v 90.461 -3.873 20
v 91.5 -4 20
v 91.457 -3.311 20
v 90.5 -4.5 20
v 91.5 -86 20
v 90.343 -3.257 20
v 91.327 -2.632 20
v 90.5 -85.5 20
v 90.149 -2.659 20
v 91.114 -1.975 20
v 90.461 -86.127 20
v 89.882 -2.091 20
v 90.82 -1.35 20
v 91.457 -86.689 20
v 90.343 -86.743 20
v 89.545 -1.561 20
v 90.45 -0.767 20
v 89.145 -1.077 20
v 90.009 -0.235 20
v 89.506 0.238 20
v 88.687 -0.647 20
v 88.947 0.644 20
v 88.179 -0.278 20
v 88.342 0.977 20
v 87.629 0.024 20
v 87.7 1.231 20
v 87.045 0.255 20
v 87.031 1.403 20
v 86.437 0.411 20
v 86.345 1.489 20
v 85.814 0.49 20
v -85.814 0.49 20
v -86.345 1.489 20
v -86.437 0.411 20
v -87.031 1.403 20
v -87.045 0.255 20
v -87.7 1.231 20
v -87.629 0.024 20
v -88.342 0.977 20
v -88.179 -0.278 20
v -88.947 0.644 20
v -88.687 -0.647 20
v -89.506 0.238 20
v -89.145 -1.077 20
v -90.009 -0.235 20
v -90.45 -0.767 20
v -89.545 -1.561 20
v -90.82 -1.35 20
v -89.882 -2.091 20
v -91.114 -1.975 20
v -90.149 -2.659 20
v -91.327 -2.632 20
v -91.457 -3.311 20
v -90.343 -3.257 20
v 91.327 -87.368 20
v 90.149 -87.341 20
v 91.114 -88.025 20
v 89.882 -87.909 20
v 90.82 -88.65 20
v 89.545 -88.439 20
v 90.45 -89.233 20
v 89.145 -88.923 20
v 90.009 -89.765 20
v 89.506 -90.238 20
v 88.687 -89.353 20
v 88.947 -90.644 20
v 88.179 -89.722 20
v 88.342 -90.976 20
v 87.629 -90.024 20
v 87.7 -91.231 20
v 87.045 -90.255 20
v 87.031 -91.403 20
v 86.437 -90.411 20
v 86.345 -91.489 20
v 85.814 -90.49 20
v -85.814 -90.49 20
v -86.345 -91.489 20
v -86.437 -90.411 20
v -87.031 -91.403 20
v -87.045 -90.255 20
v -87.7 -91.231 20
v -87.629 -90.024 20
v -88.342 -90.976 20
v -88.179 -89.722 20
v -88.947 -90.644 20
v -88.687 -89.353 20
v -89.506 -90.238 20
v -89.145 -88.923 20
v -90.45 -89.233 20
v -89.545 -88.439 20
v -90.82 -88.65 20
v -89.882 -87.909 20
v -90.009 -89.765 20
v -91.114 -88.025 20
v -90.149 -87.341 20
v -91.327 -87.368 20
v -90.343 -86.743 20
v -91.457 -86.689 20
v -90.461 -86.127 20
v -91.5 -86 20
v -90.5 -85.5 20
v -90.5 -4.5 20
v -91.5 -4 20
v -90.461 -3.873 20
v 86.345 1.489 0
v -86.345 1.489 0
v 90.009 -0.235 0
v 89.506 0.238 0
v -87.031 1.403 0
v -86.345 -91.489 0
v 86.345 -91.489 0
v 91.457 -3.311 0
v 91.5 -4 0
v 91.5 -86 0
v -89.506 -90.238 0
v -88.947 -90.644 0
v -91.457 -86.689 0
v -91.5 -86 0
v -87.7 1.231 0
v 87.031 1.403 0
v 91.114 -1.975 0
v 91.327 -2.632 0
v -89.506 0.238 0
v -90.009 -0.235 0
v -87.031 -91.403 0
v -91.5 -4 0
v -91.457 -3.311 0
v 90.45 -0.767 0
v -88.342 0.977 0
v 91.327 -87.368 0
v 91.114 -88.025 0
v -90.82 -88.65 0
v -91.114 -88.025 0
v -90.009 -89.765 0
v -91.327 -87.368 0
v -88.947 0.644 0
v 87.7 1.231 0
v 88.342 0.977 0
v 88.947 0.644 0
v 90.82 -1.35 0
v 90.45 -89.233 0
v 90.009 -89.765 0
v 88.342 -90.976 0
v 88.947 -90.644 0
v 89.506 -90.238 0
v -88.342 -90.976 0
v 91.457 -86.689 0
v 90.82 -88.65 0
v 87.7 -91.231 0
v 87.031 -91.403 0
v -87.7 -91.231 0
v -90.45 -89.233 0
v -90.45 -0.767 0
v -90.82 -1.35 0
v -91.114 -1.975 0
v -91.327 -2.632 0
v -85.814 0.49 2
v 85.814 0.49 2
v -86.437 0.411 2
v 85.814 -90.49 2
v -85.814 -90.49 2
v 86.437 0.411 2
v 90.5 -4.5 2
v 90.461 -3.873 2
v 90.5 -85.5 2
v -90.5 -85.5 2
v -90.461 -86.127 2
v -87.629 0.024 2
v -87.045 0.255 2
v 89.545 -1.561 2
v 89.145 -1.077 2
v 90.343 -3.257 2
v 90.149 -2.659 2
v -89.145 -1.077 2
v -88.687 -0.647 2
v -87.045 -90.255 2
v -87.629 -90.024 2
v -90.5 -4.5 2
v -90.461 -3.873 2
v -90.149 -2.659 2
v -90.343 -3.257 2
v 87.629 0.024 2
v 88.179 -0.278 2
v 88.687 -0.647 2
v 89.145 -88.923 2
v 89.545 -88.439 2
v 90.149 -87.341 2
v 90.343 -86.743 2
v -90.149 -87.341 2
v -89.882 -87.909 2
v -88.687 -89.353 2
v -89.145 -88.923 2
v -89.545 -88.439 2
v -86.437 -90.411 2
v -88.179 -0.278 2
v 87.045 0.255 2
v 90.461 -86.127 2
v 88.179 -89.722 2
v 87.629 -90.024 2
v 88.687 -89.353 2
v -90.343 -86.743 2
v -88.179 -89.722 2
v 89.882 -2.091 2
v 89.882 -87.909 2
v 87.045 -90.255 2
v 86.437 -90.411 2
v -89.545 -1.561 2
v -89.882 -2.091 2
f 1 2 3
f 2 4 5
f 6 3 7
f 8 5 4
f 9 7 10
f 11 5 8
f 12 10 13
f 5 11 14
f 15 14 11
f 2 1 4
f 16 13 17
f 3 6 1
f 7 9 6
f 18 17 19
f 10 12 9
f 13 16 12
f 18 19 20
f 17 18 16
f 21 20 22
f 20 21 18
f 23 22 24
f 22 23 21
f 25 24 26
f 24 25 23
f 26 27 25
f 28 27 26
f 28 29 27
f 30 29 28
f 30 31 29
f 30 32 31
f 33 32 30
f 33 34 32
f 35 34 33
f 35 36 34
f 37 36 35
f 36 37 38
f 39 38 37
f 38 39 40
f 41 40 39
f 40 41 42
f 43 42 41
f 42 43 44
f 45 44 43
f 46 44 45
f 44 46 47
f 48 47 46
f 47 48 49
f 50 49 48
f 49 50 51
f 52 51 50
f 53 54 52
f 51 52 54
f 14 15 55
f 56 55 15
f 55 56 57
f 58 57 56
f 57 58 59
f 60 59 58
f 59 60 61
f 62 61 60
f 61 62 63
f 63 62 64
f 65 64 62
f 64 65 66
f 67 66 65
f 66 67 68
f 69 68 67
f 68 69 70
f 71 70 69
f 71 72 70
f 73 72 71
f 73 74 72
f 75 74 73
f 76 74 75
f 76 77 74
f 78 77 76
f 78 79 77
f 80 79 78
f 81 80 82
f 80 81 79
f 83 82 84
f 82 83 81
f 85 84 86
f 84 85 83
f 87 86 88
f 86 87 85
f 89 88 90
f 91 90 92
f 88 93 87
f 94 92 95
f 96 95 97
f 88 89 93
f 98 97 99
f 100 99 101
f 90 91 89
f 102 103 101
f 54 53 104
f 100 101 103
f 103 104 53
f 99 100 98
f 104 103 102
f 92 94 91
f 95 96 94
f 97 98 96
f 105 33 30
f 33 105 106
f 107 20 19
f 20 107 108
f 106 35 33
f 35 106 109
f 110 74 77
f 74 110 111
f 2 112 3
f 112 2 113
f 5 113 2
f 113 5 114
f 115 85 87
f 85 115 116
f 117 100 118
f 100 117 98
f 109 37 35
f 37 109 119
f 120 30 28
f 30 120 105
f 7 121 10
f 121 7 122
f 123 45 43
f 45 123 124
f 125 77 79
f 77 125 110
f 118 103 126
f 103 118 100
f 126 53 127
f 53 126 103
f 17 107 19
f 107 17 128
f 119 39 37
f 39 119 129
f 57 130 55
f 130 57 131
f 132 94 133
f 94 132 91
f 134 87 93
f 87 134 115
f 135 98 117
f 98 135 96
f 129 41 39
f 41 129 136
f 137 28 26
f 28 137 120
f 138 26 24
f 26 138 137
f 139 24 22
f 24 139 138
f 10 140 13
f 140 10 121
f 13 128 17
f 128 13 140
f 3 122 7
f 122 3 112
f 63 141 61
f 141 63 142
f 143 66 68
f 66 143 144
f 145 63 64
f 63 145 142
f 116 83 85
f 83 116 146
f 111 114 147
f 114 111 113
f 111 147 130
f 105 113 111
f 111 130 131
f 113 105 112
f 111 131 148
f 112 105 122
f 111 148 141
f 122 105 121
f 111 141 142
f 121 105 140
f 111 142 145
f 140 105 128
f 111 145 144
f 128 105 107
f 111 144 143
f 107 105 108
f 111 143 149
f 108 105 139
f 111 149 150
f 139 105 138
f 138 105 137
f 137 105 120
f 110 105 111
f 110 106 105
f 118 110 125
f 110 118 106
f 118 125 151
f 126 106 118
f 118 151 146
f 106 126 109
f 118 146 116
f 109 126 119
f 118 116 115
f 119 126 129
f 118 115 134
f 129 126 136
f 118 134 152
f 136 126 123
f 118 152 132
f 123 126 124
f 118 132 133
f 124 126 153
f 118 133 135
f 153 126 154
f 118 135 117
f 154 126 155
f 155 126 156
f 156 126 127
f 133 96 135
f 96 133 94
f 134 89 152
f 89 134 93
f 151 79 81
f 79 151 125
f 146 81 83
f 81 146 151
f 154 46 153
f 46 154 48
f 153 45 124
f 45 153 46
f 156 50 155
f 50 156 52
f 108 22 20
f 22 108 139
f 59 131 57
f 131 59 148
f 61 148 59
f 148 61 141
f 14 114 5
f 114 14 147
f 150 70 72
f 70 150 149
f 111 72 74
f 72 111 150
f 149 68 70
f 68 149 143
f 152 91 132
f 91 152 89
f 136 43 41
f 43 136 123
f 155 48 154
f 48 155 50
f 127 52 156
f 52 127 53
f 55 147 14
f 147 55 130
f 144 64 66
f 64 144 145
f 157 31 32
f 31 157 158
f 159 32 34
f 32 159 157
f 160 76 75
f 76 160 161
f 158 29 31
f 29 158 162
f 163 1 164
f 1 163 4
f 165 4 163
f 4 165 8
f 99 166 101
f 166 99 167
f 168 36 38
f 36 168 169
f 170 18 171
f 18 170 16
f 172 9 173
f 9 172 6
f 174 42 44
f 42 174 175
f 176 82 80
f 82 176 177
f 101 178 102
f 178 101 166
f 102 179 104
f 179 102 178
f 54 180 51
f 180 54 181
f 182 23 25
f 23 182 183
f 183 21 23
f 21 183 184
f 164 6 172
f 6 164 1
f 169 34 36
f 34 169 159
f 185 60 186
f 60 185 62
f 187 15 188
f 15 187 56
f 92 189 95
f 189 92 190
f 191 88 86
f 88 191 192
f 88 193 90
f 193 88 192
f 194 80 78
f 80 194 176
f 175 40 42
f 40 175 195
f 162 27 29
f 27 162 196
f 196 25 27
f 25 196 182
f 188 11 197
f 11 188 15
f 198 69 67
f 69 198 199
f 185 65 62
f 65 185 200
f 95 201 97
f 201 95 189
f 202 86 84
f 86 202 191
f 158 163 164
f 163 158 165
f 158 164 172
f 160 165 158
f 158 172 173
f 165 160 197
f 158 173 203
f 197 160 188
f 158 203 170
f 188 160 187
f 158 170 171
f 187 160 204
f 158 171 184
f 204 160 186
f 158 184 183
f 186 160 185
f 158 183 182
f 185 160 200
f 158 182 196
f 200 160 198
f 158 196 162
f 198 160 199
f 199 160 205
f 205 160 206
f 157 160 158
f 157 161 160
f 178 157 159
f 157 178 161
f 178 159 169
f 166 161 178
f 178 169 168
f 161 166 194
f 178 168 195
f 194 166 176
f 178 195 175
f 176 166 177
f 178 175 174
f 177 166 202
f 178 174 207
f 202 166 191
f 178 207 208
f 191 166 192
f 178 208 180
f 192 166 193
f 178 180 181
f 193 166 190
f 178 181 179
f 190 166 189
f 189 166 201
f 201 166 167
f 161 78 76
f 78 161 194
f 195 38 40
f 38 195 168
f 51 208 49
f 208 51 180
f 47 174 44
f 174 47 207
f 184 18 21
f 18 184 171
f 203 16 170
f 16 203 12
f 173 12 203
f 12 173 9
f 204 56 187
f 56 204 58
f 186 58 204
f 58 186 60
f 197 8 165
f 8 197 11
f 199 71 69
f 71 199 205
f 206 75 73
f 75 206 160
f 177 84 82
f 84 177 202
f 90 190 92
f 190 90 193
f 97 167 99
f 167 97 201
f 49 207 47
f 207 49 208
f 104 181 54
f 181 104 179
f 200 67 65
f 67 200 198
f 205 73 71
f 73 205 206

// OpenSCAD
$fn = 50;


difference() {
	union() {
		translate(v = [0, -45.0000000000, 0]) {
			hull() {
				translate(v = [-86.0000000000, 41.0000000000, 0]) {
					cylinder(h = 20, r = 5.5000000000);
				}
				translate(v = [86.0000000000, 41.0000000000, 0]) {
					cylinder(h = 20, r = 5.5000000000);
				}
				translate(v = [-86.0000000000, -41.0000000000, 0]) {
					cylinder(h = 20, r = 5.5000000000);
				}
				translate(v = [86.0000000000, -41.0000000000, 0]) {
					cylinder(h = 20, r = 5.5000000000);
				}
			}
		}
	}
	union() {
		translate(v = [0, -45.0000000000, 2]) {
			hull() {
				translate(v = [-85.5000000000, 40.5000000000, 0]) {
					cylinder(h = 40, r = 5);
				}
				translate(v = [85.5000000000, 40.5000000000, 0]) {
					cylinder(h = 40, r = 5);
				}
				translate(v = [-85.5000000000, -40.5000000000, 0]) {
					cylinder(h = 40, r = 5);
				}
				translate(v = [85.5000000000, -40.5000000000, 0]) {
					cylinder(h = 40, r = 5);
				}
			}
		}
	}
}
